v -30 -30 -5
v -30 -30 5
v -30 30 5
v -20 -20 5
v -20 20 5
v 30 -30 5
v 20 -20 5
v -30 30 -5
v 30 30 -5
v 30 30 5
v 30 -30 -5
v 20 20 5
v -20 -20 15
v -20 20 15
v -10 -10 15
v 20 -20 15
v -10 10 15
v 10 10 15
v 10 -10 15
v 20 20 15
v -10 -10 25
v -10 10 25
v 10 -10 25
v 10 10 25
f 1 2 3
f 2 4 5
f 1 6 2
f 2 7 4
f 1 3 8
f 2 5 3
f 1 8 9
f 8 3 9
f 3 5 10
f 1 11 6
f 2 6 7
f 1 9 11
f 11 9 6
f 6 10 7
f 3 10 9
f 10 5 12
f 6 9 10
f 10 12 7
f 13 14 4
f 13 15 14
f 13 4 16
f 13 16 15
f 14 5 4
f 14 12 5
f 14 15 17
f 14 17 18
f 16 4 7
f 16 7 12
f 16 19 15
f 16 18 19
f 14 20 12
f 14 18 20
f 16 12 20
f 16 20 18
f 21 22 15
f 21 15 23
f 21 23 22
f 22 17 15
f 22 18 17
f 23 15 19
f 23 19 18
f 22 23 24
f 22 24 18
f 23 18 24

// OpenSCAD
// 1段目: 底辺 60mm x 60mm x 高さ 10mm
translate([0, 0, 0])
    cube([60, 60, 10], center = true);

// 2段目: 底辺 40mm x 40mm x 高さ 10mm (上に載せる)
translate([0, 0, 10])
    cube([40, 40, 10], center = true);

// 3段目: 底辺 20mm x 20mm x 高さ 10mm (さらに上に載せる)
translate([0, 0, 20])
    cube([20, 20, 10], center = true);
